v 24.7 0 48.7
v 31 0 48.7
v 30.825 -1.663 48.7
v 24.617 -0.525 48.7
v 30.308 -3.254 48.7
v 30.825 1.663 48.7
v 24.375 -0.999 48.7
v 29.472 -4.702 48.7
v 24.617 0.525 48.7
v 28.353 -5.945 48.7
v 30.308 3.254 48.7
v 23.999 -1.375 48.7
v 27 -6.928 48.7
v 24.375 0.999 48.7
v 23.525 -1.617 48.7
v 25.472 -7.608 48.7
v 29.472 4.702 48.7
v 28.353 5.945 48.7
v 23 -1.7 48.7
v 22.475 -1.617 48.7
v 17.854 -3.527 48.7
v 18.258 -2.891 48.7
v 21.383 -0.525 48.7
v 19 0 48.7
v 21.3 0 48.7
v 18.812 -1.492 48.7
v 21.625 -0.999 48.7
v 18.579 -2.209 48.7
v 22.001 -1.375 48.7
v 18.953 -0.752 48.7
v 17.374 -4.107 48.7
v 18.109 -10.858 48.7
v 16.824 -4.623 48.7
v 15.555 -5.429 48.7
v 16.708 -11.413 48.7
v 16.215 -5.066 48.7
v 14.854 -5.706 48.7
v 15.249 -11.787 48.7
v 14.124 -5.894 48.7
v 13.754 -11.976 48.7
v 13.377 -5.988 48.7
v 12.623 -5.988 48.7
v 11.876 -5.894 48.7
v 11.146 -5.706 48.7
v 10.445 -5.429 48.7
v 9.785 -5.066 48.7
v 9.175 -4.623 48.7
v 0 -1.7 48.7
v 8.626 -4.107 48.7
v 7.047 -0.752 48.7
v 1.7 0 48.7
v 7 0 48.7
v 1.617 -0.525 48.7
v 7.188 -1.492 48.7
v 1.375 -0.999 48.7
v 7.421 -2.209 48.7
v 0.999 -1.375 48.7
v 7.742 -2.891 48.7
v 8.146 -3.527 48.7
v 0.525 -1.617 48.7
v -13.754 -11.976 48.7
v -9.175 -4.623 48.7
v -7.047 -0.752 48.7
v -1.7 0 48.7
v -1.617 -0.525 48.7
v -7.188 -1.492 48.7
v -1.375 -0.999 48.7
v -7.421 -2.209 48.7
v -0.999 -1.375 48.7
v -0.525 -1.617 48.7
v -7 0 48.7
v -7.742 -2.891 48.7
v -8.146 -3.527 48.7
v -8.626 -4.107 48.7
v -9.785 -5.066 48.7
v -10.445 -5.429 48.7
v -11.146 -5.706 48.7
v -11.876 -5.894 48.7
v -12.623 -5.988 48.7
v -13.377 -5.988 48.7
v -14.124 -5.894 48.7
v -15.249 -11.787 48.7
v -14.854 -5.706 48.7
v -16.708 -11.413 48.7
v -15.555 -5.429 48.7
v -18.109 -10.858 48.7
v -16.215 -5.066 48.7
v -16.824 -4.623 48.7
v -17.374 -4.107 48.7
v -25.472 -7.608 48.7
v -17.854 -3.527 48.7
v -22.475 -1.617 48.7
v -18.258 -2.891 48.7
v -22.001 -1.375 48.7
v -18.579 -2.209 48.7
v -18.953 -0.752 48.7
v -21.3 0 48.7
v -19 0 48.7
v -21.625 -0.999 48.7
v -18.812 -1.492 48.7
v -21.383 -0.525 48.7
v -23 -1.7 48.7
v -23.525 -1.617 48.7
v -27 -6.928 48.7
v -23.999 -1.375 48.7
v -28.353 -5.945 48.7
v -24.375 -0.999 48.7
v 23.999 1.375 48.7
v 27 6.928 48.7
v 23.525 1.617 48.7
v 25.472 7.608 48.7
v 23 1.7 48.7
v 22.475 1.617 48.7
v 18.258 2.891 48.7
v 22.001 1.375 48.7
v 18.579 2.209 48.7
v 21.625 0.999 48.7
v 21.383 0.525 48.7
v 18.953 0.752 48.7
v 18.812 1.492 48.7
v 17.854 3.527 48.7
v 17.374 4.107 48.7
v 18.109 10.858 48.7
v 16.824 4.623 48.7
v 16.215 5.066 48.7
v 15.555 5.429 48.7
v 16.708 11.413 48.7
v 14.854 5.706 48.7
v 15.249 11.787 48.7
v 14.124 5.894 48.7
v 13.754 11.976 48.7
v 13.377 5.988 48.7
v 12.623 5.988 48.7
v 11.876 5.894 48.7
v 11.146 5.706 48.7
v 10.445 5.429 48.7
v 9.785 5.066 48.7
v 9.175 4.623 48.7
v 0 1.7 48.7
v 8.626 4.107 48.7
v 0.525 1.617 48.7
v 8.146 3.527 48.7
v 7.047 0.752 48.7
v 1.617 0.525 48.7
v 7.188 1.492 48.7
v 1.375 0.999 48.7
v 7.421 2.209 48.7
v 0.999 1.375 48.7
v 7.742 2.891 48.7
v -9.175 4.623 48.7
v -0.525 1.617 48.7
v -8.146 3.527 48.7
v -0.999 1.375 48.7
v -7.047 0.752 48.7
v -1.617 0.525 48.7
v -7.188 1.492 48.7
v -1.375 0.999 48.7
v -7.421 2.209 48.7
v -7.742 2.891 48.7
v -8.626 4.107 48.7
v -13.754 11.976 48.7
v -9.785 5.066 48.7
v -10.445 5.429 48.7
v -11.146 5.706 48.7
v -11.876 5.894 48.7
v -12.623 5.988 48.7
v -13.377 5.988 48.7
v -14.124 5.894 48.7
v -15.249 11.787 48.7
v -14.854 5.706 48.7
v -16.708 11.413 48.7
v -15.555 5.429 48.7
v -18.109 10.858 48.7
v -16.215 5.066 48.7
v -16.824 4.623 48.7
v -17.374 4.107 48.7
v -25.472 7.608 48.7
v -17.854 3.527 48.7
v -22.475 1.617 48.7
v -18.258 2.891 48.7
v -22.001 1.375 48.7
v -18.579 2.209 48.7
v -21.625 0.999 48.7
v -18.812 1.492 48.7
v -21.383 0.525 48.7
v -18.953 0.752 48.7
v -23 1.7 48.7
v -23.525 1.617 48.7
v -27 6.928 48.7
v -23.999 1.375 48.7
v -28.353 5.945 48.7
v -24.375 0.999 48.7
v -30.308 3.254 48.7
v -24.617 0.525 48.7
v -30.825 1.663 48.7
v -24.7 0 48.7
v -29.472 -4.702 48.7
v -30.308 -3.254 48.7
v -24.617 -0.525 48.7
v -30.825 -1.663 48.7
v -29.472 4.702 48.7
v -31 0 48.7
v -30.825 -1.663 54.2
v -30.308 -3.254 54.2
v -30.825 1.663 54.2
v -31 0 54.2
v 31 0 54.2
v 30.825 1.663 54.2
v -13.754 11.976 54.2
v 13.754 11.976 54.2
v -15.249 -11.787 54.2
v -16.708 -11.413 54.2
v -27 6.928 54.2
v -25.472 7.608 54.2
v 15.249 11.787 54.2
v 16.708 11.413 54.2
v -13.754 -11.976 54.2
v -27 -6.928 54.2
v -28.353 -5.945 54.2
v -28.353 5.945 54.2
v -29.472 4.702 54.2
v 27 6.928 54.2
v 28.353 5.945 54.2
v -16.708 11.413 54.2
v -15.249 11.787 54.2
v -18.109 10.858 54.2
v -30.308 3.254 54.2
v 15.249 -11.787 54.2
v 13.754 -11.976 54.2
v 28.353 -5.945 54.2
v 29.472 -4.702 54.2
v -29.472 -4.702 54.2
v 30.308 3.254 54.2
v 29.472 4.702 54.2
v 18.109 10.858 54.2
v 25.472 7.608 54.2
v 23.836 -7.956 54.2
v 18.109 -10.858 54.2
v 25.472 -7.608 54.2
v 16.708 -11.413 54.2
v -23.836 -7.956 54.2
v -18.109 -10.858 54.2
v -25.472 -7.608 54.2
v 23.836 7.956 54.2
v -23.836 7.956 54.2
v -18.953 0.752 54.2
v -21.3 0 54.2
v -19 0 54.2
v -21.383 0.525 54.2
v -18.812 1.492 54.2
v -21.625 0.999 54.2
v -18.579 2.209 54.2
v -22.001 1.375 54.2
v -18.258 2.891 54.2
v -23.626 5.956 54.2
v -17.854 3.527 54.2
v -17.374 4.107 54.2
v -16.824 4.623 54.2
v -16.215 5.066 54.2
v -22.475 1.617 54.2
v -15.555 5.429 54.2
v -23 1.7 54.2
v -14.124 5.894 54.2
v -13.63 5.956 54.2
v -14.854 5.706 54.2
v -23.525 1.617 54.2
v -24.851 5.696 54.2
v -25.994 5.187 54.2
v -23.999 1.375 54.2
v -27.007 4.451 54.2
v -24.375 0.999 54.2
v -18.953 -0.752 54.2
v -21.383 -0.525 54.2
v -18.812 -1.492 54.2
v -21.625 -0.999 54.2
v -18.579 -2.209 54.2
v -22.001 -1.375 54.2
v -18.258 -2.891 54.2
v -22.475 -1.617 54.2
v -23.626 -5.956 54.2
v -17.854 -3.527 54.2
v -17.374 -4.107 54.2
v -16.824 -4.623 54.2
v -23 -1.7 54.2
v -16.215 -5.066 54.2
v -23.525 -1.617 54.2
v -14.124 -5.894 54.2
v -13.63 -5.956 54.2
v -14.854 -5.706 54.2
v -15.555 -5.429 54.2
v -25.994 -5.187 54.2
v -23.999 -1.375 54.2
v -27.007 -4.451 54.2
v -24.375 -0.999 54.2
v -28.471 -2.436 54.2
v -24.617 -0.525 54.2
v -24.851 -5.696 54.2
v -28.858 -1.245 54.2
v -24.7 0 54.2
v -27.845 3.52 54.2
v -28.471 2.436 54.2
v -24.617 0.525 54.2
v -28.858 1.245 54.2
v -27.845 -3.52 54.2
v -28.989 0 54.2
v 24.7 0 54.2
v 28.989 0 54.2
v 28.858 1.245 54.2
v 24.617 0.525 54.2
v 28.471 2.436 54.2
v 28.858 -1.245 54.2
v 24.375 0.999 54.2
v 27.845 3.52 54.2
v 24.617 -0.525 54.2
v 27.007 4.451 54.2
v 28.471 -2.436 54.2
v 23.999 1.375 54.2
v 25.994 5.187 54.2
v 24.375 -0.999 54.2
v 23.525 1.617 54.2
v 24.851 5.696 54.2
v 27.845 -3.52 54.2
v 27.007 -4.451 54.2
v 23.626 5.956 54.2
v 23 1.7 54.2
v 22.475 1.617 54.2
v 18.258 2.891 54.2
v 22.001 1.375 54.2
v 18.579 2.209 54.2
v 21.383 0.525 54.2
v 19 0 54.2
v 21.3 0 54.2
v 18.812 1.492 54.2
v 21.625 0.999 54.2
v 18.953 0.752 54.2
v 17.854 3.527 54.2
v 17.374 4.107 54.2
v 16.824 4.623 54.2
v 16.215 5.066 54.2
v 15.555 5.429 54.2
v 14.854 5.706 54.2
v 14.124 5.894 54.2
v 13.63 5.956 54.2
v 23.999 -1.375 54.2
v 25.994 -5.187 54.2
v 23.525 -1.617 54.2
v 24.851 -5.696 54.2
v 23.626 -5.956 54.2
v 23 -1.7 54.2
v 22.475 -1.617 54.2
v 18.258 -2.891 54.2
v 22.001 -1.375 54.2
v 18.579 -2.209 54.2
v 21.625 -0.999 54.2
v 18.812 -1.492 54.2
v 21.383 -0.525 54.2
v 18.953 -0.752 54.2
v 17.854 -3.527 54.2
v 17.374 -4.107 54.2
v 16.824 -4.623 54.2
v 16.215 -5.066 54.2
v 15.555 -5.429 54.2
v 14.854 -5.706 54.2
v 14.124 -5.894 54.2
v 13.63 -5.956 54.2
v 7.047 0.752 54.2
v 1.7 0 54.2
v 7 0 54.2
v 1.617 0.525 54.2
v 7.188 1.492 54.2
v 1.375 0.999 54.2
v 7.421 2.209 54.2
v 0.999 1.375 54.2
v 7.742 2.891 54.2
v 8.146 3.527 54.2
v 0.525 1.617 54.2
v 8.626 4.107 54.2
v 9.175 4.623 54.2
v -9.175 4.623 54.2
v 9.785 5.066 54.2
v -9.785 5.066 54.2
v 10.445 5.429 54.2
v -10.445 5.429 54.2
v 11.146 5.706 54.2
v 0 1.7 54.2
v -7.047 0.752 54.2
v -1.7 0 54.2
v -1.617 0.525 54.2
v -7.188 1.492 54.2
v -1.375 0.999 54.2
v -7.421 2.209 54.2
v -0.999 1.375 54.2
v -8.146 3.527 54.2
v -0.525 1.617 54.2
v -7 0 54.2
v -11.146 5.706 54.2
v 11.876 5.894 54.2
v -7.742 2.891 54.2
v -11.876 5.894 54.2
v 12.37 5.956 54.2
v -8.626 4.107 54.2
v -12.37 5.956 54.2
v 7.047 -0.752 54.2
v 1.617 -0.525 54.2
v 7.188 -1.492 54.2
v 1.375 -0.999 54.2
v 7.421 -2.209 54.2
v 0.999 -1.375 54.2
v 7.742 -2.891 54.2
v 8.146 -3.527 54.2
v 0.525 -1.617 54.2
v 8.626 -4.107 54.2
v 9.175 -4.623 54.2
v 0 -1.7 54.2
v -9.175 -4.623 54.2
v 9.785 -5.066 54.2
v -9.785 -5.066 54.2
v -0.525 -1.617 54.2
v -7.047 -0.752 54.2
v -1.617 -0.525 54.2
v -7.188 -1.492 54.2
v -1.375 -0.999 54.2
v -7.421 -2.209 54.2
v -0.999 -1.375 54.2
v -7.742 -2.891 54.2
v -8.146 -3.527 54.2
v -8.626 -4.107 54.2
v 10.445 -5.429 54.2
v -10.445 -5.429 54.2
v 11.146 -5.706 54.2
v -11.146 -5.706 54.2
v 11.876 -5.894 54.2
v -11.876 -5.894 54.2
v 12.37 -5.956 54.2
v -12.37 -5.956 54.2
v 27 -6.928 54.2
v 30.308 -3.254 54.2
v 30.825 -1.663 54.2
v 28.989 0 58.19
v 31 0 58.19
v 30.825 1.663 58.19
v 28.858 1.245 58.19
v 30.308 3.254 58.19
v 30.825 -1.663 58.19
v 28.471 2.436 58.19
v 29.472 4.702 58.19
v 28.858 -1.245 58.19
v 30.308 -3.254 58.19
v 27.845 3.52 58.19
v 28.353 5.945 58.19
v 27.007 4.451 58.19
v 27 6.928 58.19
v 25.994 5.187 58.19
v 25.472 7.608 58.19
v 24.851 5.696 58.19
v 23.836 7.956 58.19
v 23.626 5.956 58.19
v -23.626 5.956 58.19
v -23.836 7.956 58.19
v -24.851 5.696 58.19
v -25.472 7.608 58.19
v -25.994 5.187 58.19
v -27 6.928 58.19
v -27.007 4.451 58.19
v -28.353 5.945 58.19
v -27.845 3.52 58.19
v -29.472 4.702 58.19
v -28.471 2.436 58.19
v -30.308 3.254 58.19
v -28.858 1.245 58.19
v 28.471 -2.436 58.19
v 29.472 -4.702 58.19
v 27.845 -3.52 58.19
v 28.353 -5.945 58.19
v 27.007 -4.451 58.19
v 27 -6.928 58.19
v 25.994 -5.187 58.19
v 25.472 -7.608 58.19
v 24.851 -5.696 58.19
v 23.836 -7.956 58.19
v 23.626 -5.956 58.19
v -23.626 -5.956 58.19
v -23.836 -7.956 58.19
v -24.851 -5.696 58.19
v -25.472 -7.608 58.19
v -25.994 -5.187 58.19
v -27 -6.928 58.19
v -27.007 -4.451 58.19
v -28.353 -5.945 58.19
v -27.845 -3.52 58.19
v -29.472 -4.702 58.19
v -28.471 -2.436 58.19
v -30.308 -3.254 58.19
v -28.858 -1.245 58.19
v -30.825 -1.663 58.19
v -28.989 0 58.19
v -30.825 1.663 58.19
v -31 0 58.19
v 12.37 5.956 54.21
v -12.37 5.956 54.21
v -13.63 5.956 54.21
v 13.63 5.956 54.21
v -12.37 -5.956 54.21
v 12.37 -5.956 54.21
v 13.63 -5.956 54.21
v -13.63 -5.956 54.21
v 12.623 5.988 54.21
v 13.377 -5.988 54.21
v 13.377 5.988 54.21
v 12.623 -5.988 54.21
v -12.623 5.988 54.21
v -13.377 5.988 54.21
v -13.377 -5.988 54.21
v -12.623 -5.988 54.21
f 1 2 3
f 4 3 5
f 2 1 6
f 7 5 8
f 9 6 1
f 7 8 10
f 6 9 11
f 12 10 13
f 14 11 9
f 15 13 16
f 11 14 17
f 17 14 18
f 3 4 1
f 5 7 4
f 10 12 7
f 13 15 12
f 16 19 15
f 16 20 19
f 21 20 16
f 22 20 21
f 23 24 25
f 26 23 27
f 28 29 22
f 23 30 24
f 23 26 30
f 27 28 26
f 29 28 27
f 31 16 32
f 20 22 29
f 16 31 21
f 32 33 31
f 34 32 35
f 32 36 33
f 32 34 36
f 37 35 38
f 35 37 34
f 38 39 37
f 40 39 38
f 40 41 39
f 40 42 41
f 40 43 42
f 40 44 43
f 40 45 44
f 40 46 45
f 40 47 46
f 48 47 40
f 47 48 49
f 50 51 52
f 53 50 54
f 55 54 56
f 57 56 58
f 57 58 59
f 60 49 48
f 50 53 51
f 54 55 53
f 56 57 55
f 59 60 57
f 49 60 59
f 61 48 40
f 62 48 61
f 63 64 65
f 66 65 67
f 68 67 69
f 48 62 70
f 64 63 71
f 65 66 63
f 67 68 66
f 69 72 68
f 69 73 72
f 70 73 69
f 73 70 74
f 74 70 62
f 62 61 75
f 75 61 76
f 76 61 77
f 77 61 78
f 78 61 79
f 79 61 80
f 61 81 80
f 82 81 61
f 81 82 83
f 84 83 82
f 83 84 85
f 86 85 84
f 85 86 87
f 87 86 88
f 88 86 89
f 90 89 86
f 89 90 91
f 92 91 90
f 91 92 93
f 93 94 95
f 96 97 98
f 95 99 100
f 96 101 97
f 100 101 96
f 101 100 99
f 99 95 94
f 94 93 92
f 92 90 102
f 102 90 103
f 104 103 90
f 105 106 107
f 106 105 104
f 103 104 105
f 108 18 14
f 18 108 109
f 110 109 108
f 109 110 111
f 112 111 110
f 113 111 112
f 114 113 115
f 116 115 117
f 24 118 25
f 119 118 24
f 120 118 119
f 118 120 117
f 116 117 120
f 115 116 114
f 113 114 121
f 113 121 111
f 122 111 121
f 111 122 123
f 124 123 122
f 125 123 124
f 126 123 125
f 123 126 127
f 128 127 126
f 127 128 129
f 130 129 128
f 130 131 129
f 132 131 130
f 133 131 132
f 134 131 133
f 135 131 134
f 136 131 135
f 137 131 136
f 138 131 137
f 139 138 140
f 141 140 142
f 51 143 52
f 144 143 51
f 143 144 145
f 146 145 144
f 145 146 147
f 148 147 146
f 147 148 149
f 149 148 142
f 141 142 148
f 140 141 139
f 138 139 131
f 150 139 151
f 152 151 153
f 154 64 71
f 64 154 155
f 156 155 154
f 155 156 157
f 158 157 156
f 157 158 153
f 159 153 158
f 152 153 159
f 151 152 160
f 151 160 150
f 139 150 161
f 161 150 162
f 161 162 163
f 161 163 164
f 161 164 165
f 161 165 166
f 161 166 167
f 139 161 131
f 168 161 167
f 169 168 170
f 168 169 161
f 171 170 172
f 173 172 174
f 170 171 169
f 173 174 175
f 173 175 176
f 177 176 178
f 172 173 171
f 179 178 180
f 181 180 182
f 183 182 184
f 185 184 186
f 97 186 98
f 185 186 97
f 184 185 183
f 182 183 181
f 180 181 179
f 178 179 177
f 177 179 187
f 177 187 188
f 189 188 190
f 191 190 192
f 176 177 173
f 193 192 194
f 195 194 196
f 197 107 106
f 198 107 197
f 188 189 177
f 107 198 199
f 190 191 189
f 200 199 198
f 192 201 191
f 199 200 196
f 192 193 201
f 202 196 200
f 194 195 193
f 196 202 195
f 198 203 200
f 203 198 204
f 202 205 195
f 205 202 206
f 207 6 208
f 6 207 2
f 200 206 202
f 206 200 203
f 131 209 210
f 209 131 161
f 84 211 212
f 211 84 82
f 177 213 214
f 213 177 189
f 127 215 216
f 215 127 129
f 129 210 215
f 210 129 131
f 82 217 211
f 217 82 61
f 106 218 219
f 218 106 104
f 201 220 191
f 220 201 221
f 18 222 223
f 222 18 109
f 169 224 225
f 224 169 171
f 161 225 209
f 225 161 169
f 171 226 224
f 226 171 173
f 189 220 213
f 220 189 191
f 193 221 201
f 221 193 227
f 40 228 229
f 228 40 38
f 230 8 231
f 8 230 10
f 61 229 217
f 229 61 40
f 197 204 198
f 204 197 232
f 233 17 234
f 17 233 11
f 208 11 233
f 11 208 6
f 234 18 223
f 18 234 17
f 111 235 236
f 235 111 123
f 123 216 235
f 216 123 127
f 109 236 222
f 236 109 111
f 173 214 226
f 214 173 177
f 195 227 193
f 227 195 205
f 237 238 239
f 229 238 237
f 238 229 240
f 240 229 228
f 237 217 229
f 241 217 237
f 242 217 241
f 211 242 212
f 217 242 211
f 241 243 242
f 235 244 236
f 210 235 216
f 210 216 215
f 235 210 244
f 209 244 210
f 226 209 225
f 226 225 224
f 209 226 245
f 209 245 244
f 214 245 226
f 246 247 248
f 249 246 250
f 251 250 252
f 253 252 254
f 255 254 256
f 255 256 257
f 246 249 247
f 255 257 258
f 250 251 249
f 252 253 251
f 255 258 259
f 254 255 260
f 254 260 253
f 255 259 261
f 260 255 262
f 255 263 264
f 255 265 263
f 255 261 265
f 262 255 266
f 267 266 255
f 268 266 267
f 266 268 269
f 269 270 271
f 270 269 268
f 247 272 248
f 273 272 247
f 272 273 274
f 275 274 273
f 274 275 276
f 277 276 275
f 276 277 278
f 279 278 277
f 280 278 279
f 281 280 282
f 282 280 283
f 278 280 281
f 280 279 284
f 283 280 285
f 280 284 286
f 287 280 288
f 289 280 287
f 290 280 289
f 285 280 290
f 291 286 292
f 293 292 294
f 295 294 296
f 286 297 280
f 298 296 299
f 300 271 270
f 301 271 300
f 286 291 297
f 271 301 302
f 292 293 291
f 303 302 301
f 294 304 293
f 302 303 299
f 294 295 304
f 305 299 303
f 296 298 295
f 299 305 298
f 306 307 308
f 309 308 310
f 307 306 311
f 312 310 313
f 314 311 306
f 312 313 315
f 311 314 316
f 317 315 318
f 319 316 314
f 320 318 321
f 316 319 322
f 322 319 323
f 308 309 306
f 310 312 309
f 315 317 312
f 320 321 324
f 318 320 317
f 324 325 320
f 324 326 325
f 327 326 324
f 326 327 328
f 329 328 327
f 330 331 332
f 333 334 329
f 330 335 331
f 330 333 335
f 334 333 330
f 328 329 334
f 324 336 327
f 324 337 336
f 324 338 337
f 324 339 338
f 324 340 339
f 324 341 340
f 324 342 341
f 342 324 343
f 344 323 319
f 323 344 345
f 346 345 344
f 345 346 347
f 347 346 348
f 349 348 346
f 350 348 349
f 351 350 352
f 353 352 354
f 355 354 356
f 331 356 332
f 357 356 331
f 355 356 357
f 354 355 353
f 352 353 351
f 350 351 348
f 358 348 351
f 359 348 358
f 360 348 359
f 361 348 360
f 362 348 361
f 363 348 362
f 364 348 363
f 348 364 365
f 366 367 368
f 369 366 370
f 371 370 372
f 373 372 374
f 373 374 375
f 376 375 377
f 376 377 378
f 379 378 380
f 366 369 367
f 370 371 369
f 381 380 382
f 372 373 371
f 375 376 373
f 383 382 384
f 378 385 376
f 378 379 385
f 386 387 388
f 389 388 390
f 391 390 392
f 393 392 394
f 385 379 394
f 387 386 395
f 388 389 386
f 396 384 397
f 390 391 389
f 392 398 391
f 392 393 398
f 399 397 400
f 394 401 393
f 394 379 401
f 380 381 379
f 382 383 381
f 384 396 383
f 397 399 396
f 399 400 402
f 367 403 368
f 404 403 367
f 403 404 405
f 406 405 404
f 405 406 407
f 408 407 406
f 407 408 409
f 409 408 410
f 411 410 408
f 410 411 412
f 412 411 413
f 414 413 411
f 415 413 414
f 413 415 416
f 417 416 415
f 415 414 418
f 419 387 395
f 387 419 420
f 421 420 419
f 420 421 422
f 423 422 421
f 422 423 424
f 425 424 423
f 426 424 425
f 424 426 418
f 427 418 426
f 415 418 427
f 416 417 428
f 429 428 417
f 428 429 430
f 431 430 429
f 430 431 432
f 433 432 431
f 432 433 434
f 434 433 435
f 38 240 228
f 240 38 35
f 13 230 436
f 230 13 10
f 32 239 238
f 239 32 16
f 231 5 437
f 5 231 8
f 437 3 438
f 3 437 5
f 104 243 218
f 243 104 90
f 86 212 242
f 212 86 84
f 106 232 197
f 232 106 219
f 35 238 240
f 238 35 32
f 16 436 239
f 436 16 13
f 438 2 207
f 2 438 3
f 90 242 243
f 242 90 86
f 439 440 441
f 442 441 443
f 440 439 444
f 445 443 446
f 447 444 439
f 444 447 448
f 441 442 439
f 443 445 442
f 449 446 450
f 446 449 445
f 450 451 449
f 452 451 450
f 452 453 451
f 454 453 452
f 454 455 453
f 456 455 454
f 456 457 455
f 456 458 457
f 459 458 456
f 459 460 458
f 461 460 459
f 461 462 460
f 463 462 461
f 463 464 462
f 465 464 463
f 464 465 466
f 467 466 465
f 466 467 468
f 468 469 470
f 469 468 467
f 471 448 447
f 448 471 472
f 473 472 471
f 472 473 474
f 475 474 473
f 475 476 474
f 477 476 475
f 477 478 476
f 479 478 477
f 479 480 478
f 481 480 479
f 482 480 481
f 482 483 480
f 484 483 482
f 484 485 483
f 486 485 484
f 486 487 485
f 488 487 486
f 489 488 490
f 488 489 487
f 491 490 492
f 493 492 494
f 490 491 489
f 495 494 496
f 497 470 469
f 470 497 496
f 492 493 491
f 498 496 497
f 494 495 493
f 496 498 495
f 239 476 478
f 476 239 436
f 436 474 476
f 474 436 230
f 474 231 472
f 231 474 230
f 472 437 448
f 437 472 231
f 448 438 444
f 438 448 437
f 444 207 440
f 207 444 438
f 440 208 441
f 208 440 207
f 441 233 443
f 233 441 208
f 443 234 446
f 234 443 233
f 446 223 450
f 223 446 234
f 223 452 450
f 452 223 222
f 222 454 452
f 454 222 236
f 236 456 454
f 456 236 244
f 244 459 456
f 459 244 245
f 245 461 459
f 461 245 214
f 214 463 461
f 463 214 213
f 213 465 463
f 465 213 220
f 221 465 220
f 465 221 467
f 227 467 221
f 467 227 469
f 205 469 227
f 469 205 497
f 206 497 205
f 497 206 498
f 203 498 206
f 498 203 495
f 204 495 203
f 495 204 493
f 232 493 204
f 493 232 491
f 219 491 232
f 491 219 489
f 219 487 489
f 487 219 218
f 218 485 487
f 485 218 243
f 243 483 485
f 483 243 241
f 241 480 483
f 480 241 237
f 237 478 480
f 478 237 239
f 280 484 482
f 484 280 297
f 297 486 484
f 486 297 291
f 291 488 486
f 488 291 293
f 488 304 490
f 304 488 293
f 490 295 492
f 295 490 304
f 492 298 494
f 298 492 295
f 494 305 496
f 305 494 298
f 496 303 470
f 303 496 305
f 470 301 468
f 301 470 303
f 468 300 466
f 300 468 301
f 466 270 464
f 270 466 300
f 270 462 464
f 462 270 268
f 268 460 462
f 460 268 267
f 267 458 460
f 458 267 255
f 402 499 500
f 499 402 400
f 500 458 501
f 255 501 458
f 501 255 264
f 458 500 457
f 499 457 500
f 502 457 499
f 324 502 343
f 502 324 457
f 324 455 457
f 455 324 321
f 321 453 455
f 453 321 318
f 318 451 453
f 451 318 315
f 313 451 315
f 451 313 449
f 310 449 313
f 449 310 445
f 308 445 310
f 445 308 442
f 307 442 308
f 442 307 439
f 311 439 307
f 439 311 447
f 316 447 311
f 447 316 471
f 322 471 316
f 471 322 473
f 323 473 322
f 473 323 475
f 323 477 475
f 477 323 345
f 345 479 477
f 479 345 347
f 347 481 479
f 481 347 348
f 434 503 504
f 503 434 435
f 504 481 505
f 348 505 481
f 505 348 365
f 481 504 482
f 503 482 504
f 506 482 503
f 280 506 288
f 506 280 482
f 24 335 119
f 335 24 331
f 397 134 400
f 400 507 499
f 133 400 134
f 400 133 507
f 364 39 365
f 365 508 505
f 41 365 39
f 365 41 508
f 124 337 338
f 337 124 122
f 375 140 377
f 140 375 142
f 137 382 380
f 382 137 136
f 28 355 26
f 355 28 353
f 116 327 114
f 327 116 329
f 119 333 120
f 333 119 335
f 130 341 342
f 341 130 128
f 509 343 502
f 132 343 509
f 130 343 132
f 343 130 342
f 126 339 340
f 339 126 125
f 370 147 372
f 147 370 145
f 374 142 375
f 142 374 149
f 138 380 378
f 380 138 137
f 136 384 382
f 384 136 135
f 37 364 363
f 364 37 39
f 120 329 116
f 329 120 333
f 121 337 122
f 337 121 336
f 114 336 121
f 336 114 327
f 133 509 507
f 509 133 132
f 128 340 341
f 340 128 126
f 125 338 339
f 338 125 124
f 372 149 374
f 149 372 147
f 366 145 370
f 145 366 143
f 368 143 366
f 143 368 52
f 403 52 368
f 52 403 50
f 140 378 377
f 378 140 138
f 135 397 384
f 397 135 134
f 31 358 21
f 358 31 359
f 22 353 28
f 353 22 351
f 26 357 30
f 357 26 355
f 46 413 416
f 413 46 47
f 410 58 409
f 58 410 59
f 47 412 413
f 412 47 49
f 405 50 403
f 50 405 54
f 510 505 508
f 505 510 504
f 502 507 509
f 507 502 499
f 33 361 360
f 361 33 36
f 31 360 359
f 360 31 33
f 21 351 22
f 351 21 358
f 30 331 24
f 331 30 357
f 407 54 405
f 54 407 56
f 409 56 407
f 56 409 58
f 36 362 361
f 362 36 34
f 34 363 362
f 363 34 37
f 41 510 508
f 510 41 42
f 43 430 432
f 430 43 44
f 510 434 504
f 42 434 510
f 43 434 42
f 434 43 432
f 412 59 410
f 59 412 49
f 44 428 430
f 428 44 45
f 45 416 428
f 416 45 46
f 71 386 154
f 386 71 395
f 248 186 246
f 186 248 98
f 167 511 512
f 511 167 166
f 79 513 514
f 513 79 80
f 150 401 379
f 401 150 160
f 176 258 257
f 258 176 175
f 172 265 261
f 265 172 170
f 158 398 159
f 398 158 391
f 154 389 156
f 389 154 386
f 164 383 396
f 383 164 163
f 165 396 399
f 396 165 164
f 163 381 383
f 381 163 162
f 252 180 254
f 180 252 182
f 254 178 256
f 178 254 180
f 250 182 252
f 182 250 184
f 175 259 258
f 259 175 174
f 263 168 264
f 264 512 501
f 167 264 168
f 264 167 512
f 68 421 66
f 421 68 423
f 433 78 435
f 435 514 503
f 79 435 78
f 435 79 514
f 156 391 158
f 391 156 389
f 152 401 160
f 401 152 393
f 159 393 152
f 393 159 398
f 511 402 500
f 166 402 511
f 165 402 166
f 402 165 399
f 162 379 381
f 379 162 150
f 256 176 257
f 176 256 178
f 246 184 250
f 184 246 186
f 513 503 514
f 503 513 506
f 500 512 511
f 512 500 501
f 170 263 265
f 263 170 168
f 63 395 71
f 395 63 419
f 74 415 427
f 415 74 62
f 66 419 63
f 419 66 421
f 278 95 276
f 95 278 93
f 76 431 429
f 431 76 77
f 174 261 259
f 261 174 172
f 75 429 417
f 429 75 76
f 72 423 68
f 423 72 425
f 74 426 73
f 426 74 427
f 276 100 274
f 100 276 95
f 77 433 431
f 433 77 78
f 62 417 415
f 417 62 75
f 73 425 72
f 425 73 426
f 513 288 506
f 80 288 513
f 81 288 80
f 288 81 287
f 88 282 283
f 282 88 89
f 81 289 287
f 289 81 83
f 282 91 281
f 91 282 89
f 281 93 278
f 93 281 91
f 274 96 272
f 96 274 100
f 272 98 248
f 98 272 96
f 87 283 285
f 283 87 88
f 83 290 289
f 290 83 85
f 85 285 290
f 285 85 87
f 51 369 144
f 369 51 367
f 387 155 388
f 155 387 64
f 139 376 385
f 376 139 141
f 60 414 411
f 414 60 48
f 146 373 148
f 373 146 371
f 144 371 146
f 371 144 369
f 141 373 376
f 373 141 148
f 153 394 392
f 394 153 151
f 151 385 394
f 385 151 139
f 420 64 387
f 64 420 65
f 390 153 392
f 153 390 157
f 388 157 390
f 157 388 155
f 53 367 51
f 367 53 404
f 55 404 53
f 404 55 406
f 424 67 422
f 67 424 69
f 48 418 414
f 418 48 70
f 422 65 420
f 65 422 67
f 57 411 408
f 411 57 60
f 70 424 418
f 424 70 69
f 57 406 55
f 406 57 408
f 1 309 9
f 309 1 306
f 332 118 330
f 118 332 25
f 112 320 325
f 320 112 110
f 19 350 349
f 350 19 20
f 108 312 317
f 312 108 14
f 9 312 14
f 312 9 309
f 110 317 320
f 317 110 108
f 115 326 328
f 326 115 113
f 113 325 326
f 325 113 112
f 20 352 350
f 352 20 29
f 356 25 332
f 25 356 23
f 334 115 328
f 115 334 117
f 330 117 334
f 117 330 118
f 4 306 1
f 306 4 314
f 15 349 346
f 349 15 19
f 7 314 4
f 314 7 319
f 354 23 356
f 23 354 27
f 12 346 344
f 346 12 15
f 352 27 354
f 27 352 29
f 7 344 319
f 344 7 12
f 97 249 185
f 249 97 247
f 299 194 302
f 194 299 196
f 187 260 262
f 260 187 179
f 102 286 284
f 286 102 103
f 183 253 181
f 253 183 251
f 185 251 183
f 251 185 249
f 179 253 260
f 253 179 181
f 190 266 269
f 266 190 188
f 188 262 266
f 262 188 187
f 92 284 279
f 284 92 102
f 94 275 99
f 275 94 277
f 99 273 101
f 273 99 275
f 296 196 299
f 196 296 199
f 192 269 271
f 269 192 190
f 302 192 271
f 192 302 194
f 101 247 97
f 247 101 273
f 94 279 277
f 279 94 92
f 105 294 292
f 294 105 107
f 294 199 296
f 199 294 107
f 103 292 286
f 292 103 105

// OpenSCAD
// file: effector_constants.scad
// effector_constants.scad
// Printable effector platform with a larger center opening for Rostock MAX V2.
// This is a collection of values used to create the objects.
// By Gregg Christopher, 2015
// This file is public domain.
// The Rostock Max V2 is by SeeMeCNC: seemecnc.com

// Manifold assurance.
slop = 0.01;

// M3 arm attachment screw parameters.
arm_screw_r = 1.5;
arm_screw_length = 72;

// Parameters for the arm attachment block.
arm_attachment_width = 37; // It is critical to delta geometery that the arms be identically spaced at the carriage and effector platform! (Or so I have read.)
arm_attachment_height = 10;
arm_attachment_bevel = 1;

// Thickness of the flange for attaching layer fans or other bling.
flange_thickness = 3;

// 6-32 screw hole size. Larger than nominal to counter expected shrinkage of vertically-printed holes.
upright_screw_r = 2.0;

// Parameters for 4-40 screws.
screw_4_40_r = 1.7;
screw_4_40_nut_r = 3.9;
screw_4_40_washer_r = 4.0;
set_screw_offset = 7;

// Fan shroud parameters.
fan_rot = 170;
fan_rot2 = 45;
fan_dy = 18;
fan_screw_attachment_h = 4;

// Parameters relating to the top clamp.
top_clamp_outer_r = 12;
top_clamp_inner_r = 6;
top_clamp_screw_offset = 23;
top_clamp_screw_outer_r = 8;
top_clamp_screw_inner_r = 1.7;

// E3D V6 HotEnd Placement
rotation = 35;
hotend_height = 27.3;
offset = 13;

// Tool distance from effector and spacers.
printed_support_height = hotend_height + 11.7 - arm_attachment_height - 25.4;
spacer_height = hotend_height + 11.7 - arm_attachment_height - printed_support_height;

// Draw a fan case.
module fan_30_mm(holes = 1) {
  color([.5, 1, .5, .8])
  difference() {
    translate([-15, 0, 0]) 
    cube([30, 30, 11]);
    
    if(holes == 1) {
      for(x = [-12, 12]) {
        for(y = [3, 27]) {
          translate([x, y, -slop])
          cylinder(r = 1.5, h = 11 + 2*slop, $fn = 16);
        }
      }
    }
  }
}
// main file
// dual_tool_clamp.scad
// Printable effector platform with a larger center opening for Rostock MAX V2.
// This is the top clamp for the dual tool holder.
// By Gregg Christopher, 2015
// This file is public domain.
// The Rostock Max V2 is by SeeMeCNC: seemecnc.com

include <effector_constants.scad>

module top_clamp() {
  difference() {
    translate([0, 0, hotend_height + 21.4])
    union() {
      linear_extrude(height = 5.5)
      hull() {
        translate([offset, 0])
        circle(r = top_clamp_outer_r, $fn = 50);
        
        translate([-offset, 0])
        circle(r = top_clamp_outer_r, $fn = 50);
      
        translate([top_clamp_screw_offset, 0])
        circle(r = top_clamp_screw_outer_r, $fn = 30);
      
        translate([-top_clamp_screw_offset, 0])
        circle(r = top_clamp_screw_outer_r, $fn = 30);
      }
      // Add some reinforcement so it doesn't bend as much when clamped tightly down.
      translate([0, 0, 5.5 - slop])
      linear_extrude(height = 4)
      difference() {
        hull() {
          //circle(r = top_clamp_outer_r, $fn = 50);
        
          translate([top_clamp_screw_offset, 0])
          circle(r = top_clamp_screw_outer_r, $fn = 30);
        
          translate([-top_clamp_screw_offset, 0])
          circle(r = top_clamp_screw_outer_r, $fn = 30);
        }
        offset(r = -2) 
        hull() {
          //circle(r = top_clamp_outer_r, $fn = 50);
        
          translate([top_clamp_screw_offset, 0])
          circle(r = top_clamp_screw_outer_r, $fn = 30);
        
          translate([-top_clamp_screw_offset, 0])
          circle(r = top_clamp_screw_outer_r, $fn = 30);
        }
      }
    }
        
    translate([offset, 0, hotend_height + 21.4 - slop])
    cylinder(r = top_clamp_inner_r, h = 5.5 + 2*slop, $fn = 50);
    
    translate([-offset, 0, hotend_height + 21.4 - slop])
    cylinder(r = top_clamp_inner_r, h = 5.5 + 2*slop, $fn = 50);

    translate([0, 0, hotend_height + 21.4 - slop])
    cylinder(r = top_clamp_screw_inner_r, h = 5.5 + 2*slop, $fn = 20);

    translate([top_clamp_screw_offset, 0, hotend_height + 21.4 - slop])
    cylinder(r = top_clamp_screw_inner_r, h = 5.5 + 2*slop, $fn = 20);

    translate([-top_clamp_screw_offset, 0, hotend_height + 21.4 - slop])
    cylinder(r = top_clamp_screw_inner_r, h = 5.5 + 2*slop, $fn = 20);
  }
}

top_clamp();
